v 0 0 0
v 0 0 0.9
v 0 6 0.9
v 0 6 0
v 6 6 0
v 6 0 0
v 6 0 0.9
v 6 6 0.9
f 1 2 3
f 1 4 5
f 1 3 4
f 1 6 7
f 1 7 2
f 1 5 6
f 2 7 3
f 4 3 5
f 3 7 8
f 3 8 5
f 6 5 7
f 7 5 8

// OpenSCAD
/* Warning, this is a very basic generator with a lot of approximation 
input data : [VQFN, 7MX, 6x6x0.9mm, 48, , A, C04-00506A]
generated by com.zoubworld.electronics.cad.model3d.Basic
Date : Sun Feb 15 10:50:48 CET 2026
*/

//body
color("black")
translate([0,0,0])
cube([6.0,6.0,0.9], center=false);
